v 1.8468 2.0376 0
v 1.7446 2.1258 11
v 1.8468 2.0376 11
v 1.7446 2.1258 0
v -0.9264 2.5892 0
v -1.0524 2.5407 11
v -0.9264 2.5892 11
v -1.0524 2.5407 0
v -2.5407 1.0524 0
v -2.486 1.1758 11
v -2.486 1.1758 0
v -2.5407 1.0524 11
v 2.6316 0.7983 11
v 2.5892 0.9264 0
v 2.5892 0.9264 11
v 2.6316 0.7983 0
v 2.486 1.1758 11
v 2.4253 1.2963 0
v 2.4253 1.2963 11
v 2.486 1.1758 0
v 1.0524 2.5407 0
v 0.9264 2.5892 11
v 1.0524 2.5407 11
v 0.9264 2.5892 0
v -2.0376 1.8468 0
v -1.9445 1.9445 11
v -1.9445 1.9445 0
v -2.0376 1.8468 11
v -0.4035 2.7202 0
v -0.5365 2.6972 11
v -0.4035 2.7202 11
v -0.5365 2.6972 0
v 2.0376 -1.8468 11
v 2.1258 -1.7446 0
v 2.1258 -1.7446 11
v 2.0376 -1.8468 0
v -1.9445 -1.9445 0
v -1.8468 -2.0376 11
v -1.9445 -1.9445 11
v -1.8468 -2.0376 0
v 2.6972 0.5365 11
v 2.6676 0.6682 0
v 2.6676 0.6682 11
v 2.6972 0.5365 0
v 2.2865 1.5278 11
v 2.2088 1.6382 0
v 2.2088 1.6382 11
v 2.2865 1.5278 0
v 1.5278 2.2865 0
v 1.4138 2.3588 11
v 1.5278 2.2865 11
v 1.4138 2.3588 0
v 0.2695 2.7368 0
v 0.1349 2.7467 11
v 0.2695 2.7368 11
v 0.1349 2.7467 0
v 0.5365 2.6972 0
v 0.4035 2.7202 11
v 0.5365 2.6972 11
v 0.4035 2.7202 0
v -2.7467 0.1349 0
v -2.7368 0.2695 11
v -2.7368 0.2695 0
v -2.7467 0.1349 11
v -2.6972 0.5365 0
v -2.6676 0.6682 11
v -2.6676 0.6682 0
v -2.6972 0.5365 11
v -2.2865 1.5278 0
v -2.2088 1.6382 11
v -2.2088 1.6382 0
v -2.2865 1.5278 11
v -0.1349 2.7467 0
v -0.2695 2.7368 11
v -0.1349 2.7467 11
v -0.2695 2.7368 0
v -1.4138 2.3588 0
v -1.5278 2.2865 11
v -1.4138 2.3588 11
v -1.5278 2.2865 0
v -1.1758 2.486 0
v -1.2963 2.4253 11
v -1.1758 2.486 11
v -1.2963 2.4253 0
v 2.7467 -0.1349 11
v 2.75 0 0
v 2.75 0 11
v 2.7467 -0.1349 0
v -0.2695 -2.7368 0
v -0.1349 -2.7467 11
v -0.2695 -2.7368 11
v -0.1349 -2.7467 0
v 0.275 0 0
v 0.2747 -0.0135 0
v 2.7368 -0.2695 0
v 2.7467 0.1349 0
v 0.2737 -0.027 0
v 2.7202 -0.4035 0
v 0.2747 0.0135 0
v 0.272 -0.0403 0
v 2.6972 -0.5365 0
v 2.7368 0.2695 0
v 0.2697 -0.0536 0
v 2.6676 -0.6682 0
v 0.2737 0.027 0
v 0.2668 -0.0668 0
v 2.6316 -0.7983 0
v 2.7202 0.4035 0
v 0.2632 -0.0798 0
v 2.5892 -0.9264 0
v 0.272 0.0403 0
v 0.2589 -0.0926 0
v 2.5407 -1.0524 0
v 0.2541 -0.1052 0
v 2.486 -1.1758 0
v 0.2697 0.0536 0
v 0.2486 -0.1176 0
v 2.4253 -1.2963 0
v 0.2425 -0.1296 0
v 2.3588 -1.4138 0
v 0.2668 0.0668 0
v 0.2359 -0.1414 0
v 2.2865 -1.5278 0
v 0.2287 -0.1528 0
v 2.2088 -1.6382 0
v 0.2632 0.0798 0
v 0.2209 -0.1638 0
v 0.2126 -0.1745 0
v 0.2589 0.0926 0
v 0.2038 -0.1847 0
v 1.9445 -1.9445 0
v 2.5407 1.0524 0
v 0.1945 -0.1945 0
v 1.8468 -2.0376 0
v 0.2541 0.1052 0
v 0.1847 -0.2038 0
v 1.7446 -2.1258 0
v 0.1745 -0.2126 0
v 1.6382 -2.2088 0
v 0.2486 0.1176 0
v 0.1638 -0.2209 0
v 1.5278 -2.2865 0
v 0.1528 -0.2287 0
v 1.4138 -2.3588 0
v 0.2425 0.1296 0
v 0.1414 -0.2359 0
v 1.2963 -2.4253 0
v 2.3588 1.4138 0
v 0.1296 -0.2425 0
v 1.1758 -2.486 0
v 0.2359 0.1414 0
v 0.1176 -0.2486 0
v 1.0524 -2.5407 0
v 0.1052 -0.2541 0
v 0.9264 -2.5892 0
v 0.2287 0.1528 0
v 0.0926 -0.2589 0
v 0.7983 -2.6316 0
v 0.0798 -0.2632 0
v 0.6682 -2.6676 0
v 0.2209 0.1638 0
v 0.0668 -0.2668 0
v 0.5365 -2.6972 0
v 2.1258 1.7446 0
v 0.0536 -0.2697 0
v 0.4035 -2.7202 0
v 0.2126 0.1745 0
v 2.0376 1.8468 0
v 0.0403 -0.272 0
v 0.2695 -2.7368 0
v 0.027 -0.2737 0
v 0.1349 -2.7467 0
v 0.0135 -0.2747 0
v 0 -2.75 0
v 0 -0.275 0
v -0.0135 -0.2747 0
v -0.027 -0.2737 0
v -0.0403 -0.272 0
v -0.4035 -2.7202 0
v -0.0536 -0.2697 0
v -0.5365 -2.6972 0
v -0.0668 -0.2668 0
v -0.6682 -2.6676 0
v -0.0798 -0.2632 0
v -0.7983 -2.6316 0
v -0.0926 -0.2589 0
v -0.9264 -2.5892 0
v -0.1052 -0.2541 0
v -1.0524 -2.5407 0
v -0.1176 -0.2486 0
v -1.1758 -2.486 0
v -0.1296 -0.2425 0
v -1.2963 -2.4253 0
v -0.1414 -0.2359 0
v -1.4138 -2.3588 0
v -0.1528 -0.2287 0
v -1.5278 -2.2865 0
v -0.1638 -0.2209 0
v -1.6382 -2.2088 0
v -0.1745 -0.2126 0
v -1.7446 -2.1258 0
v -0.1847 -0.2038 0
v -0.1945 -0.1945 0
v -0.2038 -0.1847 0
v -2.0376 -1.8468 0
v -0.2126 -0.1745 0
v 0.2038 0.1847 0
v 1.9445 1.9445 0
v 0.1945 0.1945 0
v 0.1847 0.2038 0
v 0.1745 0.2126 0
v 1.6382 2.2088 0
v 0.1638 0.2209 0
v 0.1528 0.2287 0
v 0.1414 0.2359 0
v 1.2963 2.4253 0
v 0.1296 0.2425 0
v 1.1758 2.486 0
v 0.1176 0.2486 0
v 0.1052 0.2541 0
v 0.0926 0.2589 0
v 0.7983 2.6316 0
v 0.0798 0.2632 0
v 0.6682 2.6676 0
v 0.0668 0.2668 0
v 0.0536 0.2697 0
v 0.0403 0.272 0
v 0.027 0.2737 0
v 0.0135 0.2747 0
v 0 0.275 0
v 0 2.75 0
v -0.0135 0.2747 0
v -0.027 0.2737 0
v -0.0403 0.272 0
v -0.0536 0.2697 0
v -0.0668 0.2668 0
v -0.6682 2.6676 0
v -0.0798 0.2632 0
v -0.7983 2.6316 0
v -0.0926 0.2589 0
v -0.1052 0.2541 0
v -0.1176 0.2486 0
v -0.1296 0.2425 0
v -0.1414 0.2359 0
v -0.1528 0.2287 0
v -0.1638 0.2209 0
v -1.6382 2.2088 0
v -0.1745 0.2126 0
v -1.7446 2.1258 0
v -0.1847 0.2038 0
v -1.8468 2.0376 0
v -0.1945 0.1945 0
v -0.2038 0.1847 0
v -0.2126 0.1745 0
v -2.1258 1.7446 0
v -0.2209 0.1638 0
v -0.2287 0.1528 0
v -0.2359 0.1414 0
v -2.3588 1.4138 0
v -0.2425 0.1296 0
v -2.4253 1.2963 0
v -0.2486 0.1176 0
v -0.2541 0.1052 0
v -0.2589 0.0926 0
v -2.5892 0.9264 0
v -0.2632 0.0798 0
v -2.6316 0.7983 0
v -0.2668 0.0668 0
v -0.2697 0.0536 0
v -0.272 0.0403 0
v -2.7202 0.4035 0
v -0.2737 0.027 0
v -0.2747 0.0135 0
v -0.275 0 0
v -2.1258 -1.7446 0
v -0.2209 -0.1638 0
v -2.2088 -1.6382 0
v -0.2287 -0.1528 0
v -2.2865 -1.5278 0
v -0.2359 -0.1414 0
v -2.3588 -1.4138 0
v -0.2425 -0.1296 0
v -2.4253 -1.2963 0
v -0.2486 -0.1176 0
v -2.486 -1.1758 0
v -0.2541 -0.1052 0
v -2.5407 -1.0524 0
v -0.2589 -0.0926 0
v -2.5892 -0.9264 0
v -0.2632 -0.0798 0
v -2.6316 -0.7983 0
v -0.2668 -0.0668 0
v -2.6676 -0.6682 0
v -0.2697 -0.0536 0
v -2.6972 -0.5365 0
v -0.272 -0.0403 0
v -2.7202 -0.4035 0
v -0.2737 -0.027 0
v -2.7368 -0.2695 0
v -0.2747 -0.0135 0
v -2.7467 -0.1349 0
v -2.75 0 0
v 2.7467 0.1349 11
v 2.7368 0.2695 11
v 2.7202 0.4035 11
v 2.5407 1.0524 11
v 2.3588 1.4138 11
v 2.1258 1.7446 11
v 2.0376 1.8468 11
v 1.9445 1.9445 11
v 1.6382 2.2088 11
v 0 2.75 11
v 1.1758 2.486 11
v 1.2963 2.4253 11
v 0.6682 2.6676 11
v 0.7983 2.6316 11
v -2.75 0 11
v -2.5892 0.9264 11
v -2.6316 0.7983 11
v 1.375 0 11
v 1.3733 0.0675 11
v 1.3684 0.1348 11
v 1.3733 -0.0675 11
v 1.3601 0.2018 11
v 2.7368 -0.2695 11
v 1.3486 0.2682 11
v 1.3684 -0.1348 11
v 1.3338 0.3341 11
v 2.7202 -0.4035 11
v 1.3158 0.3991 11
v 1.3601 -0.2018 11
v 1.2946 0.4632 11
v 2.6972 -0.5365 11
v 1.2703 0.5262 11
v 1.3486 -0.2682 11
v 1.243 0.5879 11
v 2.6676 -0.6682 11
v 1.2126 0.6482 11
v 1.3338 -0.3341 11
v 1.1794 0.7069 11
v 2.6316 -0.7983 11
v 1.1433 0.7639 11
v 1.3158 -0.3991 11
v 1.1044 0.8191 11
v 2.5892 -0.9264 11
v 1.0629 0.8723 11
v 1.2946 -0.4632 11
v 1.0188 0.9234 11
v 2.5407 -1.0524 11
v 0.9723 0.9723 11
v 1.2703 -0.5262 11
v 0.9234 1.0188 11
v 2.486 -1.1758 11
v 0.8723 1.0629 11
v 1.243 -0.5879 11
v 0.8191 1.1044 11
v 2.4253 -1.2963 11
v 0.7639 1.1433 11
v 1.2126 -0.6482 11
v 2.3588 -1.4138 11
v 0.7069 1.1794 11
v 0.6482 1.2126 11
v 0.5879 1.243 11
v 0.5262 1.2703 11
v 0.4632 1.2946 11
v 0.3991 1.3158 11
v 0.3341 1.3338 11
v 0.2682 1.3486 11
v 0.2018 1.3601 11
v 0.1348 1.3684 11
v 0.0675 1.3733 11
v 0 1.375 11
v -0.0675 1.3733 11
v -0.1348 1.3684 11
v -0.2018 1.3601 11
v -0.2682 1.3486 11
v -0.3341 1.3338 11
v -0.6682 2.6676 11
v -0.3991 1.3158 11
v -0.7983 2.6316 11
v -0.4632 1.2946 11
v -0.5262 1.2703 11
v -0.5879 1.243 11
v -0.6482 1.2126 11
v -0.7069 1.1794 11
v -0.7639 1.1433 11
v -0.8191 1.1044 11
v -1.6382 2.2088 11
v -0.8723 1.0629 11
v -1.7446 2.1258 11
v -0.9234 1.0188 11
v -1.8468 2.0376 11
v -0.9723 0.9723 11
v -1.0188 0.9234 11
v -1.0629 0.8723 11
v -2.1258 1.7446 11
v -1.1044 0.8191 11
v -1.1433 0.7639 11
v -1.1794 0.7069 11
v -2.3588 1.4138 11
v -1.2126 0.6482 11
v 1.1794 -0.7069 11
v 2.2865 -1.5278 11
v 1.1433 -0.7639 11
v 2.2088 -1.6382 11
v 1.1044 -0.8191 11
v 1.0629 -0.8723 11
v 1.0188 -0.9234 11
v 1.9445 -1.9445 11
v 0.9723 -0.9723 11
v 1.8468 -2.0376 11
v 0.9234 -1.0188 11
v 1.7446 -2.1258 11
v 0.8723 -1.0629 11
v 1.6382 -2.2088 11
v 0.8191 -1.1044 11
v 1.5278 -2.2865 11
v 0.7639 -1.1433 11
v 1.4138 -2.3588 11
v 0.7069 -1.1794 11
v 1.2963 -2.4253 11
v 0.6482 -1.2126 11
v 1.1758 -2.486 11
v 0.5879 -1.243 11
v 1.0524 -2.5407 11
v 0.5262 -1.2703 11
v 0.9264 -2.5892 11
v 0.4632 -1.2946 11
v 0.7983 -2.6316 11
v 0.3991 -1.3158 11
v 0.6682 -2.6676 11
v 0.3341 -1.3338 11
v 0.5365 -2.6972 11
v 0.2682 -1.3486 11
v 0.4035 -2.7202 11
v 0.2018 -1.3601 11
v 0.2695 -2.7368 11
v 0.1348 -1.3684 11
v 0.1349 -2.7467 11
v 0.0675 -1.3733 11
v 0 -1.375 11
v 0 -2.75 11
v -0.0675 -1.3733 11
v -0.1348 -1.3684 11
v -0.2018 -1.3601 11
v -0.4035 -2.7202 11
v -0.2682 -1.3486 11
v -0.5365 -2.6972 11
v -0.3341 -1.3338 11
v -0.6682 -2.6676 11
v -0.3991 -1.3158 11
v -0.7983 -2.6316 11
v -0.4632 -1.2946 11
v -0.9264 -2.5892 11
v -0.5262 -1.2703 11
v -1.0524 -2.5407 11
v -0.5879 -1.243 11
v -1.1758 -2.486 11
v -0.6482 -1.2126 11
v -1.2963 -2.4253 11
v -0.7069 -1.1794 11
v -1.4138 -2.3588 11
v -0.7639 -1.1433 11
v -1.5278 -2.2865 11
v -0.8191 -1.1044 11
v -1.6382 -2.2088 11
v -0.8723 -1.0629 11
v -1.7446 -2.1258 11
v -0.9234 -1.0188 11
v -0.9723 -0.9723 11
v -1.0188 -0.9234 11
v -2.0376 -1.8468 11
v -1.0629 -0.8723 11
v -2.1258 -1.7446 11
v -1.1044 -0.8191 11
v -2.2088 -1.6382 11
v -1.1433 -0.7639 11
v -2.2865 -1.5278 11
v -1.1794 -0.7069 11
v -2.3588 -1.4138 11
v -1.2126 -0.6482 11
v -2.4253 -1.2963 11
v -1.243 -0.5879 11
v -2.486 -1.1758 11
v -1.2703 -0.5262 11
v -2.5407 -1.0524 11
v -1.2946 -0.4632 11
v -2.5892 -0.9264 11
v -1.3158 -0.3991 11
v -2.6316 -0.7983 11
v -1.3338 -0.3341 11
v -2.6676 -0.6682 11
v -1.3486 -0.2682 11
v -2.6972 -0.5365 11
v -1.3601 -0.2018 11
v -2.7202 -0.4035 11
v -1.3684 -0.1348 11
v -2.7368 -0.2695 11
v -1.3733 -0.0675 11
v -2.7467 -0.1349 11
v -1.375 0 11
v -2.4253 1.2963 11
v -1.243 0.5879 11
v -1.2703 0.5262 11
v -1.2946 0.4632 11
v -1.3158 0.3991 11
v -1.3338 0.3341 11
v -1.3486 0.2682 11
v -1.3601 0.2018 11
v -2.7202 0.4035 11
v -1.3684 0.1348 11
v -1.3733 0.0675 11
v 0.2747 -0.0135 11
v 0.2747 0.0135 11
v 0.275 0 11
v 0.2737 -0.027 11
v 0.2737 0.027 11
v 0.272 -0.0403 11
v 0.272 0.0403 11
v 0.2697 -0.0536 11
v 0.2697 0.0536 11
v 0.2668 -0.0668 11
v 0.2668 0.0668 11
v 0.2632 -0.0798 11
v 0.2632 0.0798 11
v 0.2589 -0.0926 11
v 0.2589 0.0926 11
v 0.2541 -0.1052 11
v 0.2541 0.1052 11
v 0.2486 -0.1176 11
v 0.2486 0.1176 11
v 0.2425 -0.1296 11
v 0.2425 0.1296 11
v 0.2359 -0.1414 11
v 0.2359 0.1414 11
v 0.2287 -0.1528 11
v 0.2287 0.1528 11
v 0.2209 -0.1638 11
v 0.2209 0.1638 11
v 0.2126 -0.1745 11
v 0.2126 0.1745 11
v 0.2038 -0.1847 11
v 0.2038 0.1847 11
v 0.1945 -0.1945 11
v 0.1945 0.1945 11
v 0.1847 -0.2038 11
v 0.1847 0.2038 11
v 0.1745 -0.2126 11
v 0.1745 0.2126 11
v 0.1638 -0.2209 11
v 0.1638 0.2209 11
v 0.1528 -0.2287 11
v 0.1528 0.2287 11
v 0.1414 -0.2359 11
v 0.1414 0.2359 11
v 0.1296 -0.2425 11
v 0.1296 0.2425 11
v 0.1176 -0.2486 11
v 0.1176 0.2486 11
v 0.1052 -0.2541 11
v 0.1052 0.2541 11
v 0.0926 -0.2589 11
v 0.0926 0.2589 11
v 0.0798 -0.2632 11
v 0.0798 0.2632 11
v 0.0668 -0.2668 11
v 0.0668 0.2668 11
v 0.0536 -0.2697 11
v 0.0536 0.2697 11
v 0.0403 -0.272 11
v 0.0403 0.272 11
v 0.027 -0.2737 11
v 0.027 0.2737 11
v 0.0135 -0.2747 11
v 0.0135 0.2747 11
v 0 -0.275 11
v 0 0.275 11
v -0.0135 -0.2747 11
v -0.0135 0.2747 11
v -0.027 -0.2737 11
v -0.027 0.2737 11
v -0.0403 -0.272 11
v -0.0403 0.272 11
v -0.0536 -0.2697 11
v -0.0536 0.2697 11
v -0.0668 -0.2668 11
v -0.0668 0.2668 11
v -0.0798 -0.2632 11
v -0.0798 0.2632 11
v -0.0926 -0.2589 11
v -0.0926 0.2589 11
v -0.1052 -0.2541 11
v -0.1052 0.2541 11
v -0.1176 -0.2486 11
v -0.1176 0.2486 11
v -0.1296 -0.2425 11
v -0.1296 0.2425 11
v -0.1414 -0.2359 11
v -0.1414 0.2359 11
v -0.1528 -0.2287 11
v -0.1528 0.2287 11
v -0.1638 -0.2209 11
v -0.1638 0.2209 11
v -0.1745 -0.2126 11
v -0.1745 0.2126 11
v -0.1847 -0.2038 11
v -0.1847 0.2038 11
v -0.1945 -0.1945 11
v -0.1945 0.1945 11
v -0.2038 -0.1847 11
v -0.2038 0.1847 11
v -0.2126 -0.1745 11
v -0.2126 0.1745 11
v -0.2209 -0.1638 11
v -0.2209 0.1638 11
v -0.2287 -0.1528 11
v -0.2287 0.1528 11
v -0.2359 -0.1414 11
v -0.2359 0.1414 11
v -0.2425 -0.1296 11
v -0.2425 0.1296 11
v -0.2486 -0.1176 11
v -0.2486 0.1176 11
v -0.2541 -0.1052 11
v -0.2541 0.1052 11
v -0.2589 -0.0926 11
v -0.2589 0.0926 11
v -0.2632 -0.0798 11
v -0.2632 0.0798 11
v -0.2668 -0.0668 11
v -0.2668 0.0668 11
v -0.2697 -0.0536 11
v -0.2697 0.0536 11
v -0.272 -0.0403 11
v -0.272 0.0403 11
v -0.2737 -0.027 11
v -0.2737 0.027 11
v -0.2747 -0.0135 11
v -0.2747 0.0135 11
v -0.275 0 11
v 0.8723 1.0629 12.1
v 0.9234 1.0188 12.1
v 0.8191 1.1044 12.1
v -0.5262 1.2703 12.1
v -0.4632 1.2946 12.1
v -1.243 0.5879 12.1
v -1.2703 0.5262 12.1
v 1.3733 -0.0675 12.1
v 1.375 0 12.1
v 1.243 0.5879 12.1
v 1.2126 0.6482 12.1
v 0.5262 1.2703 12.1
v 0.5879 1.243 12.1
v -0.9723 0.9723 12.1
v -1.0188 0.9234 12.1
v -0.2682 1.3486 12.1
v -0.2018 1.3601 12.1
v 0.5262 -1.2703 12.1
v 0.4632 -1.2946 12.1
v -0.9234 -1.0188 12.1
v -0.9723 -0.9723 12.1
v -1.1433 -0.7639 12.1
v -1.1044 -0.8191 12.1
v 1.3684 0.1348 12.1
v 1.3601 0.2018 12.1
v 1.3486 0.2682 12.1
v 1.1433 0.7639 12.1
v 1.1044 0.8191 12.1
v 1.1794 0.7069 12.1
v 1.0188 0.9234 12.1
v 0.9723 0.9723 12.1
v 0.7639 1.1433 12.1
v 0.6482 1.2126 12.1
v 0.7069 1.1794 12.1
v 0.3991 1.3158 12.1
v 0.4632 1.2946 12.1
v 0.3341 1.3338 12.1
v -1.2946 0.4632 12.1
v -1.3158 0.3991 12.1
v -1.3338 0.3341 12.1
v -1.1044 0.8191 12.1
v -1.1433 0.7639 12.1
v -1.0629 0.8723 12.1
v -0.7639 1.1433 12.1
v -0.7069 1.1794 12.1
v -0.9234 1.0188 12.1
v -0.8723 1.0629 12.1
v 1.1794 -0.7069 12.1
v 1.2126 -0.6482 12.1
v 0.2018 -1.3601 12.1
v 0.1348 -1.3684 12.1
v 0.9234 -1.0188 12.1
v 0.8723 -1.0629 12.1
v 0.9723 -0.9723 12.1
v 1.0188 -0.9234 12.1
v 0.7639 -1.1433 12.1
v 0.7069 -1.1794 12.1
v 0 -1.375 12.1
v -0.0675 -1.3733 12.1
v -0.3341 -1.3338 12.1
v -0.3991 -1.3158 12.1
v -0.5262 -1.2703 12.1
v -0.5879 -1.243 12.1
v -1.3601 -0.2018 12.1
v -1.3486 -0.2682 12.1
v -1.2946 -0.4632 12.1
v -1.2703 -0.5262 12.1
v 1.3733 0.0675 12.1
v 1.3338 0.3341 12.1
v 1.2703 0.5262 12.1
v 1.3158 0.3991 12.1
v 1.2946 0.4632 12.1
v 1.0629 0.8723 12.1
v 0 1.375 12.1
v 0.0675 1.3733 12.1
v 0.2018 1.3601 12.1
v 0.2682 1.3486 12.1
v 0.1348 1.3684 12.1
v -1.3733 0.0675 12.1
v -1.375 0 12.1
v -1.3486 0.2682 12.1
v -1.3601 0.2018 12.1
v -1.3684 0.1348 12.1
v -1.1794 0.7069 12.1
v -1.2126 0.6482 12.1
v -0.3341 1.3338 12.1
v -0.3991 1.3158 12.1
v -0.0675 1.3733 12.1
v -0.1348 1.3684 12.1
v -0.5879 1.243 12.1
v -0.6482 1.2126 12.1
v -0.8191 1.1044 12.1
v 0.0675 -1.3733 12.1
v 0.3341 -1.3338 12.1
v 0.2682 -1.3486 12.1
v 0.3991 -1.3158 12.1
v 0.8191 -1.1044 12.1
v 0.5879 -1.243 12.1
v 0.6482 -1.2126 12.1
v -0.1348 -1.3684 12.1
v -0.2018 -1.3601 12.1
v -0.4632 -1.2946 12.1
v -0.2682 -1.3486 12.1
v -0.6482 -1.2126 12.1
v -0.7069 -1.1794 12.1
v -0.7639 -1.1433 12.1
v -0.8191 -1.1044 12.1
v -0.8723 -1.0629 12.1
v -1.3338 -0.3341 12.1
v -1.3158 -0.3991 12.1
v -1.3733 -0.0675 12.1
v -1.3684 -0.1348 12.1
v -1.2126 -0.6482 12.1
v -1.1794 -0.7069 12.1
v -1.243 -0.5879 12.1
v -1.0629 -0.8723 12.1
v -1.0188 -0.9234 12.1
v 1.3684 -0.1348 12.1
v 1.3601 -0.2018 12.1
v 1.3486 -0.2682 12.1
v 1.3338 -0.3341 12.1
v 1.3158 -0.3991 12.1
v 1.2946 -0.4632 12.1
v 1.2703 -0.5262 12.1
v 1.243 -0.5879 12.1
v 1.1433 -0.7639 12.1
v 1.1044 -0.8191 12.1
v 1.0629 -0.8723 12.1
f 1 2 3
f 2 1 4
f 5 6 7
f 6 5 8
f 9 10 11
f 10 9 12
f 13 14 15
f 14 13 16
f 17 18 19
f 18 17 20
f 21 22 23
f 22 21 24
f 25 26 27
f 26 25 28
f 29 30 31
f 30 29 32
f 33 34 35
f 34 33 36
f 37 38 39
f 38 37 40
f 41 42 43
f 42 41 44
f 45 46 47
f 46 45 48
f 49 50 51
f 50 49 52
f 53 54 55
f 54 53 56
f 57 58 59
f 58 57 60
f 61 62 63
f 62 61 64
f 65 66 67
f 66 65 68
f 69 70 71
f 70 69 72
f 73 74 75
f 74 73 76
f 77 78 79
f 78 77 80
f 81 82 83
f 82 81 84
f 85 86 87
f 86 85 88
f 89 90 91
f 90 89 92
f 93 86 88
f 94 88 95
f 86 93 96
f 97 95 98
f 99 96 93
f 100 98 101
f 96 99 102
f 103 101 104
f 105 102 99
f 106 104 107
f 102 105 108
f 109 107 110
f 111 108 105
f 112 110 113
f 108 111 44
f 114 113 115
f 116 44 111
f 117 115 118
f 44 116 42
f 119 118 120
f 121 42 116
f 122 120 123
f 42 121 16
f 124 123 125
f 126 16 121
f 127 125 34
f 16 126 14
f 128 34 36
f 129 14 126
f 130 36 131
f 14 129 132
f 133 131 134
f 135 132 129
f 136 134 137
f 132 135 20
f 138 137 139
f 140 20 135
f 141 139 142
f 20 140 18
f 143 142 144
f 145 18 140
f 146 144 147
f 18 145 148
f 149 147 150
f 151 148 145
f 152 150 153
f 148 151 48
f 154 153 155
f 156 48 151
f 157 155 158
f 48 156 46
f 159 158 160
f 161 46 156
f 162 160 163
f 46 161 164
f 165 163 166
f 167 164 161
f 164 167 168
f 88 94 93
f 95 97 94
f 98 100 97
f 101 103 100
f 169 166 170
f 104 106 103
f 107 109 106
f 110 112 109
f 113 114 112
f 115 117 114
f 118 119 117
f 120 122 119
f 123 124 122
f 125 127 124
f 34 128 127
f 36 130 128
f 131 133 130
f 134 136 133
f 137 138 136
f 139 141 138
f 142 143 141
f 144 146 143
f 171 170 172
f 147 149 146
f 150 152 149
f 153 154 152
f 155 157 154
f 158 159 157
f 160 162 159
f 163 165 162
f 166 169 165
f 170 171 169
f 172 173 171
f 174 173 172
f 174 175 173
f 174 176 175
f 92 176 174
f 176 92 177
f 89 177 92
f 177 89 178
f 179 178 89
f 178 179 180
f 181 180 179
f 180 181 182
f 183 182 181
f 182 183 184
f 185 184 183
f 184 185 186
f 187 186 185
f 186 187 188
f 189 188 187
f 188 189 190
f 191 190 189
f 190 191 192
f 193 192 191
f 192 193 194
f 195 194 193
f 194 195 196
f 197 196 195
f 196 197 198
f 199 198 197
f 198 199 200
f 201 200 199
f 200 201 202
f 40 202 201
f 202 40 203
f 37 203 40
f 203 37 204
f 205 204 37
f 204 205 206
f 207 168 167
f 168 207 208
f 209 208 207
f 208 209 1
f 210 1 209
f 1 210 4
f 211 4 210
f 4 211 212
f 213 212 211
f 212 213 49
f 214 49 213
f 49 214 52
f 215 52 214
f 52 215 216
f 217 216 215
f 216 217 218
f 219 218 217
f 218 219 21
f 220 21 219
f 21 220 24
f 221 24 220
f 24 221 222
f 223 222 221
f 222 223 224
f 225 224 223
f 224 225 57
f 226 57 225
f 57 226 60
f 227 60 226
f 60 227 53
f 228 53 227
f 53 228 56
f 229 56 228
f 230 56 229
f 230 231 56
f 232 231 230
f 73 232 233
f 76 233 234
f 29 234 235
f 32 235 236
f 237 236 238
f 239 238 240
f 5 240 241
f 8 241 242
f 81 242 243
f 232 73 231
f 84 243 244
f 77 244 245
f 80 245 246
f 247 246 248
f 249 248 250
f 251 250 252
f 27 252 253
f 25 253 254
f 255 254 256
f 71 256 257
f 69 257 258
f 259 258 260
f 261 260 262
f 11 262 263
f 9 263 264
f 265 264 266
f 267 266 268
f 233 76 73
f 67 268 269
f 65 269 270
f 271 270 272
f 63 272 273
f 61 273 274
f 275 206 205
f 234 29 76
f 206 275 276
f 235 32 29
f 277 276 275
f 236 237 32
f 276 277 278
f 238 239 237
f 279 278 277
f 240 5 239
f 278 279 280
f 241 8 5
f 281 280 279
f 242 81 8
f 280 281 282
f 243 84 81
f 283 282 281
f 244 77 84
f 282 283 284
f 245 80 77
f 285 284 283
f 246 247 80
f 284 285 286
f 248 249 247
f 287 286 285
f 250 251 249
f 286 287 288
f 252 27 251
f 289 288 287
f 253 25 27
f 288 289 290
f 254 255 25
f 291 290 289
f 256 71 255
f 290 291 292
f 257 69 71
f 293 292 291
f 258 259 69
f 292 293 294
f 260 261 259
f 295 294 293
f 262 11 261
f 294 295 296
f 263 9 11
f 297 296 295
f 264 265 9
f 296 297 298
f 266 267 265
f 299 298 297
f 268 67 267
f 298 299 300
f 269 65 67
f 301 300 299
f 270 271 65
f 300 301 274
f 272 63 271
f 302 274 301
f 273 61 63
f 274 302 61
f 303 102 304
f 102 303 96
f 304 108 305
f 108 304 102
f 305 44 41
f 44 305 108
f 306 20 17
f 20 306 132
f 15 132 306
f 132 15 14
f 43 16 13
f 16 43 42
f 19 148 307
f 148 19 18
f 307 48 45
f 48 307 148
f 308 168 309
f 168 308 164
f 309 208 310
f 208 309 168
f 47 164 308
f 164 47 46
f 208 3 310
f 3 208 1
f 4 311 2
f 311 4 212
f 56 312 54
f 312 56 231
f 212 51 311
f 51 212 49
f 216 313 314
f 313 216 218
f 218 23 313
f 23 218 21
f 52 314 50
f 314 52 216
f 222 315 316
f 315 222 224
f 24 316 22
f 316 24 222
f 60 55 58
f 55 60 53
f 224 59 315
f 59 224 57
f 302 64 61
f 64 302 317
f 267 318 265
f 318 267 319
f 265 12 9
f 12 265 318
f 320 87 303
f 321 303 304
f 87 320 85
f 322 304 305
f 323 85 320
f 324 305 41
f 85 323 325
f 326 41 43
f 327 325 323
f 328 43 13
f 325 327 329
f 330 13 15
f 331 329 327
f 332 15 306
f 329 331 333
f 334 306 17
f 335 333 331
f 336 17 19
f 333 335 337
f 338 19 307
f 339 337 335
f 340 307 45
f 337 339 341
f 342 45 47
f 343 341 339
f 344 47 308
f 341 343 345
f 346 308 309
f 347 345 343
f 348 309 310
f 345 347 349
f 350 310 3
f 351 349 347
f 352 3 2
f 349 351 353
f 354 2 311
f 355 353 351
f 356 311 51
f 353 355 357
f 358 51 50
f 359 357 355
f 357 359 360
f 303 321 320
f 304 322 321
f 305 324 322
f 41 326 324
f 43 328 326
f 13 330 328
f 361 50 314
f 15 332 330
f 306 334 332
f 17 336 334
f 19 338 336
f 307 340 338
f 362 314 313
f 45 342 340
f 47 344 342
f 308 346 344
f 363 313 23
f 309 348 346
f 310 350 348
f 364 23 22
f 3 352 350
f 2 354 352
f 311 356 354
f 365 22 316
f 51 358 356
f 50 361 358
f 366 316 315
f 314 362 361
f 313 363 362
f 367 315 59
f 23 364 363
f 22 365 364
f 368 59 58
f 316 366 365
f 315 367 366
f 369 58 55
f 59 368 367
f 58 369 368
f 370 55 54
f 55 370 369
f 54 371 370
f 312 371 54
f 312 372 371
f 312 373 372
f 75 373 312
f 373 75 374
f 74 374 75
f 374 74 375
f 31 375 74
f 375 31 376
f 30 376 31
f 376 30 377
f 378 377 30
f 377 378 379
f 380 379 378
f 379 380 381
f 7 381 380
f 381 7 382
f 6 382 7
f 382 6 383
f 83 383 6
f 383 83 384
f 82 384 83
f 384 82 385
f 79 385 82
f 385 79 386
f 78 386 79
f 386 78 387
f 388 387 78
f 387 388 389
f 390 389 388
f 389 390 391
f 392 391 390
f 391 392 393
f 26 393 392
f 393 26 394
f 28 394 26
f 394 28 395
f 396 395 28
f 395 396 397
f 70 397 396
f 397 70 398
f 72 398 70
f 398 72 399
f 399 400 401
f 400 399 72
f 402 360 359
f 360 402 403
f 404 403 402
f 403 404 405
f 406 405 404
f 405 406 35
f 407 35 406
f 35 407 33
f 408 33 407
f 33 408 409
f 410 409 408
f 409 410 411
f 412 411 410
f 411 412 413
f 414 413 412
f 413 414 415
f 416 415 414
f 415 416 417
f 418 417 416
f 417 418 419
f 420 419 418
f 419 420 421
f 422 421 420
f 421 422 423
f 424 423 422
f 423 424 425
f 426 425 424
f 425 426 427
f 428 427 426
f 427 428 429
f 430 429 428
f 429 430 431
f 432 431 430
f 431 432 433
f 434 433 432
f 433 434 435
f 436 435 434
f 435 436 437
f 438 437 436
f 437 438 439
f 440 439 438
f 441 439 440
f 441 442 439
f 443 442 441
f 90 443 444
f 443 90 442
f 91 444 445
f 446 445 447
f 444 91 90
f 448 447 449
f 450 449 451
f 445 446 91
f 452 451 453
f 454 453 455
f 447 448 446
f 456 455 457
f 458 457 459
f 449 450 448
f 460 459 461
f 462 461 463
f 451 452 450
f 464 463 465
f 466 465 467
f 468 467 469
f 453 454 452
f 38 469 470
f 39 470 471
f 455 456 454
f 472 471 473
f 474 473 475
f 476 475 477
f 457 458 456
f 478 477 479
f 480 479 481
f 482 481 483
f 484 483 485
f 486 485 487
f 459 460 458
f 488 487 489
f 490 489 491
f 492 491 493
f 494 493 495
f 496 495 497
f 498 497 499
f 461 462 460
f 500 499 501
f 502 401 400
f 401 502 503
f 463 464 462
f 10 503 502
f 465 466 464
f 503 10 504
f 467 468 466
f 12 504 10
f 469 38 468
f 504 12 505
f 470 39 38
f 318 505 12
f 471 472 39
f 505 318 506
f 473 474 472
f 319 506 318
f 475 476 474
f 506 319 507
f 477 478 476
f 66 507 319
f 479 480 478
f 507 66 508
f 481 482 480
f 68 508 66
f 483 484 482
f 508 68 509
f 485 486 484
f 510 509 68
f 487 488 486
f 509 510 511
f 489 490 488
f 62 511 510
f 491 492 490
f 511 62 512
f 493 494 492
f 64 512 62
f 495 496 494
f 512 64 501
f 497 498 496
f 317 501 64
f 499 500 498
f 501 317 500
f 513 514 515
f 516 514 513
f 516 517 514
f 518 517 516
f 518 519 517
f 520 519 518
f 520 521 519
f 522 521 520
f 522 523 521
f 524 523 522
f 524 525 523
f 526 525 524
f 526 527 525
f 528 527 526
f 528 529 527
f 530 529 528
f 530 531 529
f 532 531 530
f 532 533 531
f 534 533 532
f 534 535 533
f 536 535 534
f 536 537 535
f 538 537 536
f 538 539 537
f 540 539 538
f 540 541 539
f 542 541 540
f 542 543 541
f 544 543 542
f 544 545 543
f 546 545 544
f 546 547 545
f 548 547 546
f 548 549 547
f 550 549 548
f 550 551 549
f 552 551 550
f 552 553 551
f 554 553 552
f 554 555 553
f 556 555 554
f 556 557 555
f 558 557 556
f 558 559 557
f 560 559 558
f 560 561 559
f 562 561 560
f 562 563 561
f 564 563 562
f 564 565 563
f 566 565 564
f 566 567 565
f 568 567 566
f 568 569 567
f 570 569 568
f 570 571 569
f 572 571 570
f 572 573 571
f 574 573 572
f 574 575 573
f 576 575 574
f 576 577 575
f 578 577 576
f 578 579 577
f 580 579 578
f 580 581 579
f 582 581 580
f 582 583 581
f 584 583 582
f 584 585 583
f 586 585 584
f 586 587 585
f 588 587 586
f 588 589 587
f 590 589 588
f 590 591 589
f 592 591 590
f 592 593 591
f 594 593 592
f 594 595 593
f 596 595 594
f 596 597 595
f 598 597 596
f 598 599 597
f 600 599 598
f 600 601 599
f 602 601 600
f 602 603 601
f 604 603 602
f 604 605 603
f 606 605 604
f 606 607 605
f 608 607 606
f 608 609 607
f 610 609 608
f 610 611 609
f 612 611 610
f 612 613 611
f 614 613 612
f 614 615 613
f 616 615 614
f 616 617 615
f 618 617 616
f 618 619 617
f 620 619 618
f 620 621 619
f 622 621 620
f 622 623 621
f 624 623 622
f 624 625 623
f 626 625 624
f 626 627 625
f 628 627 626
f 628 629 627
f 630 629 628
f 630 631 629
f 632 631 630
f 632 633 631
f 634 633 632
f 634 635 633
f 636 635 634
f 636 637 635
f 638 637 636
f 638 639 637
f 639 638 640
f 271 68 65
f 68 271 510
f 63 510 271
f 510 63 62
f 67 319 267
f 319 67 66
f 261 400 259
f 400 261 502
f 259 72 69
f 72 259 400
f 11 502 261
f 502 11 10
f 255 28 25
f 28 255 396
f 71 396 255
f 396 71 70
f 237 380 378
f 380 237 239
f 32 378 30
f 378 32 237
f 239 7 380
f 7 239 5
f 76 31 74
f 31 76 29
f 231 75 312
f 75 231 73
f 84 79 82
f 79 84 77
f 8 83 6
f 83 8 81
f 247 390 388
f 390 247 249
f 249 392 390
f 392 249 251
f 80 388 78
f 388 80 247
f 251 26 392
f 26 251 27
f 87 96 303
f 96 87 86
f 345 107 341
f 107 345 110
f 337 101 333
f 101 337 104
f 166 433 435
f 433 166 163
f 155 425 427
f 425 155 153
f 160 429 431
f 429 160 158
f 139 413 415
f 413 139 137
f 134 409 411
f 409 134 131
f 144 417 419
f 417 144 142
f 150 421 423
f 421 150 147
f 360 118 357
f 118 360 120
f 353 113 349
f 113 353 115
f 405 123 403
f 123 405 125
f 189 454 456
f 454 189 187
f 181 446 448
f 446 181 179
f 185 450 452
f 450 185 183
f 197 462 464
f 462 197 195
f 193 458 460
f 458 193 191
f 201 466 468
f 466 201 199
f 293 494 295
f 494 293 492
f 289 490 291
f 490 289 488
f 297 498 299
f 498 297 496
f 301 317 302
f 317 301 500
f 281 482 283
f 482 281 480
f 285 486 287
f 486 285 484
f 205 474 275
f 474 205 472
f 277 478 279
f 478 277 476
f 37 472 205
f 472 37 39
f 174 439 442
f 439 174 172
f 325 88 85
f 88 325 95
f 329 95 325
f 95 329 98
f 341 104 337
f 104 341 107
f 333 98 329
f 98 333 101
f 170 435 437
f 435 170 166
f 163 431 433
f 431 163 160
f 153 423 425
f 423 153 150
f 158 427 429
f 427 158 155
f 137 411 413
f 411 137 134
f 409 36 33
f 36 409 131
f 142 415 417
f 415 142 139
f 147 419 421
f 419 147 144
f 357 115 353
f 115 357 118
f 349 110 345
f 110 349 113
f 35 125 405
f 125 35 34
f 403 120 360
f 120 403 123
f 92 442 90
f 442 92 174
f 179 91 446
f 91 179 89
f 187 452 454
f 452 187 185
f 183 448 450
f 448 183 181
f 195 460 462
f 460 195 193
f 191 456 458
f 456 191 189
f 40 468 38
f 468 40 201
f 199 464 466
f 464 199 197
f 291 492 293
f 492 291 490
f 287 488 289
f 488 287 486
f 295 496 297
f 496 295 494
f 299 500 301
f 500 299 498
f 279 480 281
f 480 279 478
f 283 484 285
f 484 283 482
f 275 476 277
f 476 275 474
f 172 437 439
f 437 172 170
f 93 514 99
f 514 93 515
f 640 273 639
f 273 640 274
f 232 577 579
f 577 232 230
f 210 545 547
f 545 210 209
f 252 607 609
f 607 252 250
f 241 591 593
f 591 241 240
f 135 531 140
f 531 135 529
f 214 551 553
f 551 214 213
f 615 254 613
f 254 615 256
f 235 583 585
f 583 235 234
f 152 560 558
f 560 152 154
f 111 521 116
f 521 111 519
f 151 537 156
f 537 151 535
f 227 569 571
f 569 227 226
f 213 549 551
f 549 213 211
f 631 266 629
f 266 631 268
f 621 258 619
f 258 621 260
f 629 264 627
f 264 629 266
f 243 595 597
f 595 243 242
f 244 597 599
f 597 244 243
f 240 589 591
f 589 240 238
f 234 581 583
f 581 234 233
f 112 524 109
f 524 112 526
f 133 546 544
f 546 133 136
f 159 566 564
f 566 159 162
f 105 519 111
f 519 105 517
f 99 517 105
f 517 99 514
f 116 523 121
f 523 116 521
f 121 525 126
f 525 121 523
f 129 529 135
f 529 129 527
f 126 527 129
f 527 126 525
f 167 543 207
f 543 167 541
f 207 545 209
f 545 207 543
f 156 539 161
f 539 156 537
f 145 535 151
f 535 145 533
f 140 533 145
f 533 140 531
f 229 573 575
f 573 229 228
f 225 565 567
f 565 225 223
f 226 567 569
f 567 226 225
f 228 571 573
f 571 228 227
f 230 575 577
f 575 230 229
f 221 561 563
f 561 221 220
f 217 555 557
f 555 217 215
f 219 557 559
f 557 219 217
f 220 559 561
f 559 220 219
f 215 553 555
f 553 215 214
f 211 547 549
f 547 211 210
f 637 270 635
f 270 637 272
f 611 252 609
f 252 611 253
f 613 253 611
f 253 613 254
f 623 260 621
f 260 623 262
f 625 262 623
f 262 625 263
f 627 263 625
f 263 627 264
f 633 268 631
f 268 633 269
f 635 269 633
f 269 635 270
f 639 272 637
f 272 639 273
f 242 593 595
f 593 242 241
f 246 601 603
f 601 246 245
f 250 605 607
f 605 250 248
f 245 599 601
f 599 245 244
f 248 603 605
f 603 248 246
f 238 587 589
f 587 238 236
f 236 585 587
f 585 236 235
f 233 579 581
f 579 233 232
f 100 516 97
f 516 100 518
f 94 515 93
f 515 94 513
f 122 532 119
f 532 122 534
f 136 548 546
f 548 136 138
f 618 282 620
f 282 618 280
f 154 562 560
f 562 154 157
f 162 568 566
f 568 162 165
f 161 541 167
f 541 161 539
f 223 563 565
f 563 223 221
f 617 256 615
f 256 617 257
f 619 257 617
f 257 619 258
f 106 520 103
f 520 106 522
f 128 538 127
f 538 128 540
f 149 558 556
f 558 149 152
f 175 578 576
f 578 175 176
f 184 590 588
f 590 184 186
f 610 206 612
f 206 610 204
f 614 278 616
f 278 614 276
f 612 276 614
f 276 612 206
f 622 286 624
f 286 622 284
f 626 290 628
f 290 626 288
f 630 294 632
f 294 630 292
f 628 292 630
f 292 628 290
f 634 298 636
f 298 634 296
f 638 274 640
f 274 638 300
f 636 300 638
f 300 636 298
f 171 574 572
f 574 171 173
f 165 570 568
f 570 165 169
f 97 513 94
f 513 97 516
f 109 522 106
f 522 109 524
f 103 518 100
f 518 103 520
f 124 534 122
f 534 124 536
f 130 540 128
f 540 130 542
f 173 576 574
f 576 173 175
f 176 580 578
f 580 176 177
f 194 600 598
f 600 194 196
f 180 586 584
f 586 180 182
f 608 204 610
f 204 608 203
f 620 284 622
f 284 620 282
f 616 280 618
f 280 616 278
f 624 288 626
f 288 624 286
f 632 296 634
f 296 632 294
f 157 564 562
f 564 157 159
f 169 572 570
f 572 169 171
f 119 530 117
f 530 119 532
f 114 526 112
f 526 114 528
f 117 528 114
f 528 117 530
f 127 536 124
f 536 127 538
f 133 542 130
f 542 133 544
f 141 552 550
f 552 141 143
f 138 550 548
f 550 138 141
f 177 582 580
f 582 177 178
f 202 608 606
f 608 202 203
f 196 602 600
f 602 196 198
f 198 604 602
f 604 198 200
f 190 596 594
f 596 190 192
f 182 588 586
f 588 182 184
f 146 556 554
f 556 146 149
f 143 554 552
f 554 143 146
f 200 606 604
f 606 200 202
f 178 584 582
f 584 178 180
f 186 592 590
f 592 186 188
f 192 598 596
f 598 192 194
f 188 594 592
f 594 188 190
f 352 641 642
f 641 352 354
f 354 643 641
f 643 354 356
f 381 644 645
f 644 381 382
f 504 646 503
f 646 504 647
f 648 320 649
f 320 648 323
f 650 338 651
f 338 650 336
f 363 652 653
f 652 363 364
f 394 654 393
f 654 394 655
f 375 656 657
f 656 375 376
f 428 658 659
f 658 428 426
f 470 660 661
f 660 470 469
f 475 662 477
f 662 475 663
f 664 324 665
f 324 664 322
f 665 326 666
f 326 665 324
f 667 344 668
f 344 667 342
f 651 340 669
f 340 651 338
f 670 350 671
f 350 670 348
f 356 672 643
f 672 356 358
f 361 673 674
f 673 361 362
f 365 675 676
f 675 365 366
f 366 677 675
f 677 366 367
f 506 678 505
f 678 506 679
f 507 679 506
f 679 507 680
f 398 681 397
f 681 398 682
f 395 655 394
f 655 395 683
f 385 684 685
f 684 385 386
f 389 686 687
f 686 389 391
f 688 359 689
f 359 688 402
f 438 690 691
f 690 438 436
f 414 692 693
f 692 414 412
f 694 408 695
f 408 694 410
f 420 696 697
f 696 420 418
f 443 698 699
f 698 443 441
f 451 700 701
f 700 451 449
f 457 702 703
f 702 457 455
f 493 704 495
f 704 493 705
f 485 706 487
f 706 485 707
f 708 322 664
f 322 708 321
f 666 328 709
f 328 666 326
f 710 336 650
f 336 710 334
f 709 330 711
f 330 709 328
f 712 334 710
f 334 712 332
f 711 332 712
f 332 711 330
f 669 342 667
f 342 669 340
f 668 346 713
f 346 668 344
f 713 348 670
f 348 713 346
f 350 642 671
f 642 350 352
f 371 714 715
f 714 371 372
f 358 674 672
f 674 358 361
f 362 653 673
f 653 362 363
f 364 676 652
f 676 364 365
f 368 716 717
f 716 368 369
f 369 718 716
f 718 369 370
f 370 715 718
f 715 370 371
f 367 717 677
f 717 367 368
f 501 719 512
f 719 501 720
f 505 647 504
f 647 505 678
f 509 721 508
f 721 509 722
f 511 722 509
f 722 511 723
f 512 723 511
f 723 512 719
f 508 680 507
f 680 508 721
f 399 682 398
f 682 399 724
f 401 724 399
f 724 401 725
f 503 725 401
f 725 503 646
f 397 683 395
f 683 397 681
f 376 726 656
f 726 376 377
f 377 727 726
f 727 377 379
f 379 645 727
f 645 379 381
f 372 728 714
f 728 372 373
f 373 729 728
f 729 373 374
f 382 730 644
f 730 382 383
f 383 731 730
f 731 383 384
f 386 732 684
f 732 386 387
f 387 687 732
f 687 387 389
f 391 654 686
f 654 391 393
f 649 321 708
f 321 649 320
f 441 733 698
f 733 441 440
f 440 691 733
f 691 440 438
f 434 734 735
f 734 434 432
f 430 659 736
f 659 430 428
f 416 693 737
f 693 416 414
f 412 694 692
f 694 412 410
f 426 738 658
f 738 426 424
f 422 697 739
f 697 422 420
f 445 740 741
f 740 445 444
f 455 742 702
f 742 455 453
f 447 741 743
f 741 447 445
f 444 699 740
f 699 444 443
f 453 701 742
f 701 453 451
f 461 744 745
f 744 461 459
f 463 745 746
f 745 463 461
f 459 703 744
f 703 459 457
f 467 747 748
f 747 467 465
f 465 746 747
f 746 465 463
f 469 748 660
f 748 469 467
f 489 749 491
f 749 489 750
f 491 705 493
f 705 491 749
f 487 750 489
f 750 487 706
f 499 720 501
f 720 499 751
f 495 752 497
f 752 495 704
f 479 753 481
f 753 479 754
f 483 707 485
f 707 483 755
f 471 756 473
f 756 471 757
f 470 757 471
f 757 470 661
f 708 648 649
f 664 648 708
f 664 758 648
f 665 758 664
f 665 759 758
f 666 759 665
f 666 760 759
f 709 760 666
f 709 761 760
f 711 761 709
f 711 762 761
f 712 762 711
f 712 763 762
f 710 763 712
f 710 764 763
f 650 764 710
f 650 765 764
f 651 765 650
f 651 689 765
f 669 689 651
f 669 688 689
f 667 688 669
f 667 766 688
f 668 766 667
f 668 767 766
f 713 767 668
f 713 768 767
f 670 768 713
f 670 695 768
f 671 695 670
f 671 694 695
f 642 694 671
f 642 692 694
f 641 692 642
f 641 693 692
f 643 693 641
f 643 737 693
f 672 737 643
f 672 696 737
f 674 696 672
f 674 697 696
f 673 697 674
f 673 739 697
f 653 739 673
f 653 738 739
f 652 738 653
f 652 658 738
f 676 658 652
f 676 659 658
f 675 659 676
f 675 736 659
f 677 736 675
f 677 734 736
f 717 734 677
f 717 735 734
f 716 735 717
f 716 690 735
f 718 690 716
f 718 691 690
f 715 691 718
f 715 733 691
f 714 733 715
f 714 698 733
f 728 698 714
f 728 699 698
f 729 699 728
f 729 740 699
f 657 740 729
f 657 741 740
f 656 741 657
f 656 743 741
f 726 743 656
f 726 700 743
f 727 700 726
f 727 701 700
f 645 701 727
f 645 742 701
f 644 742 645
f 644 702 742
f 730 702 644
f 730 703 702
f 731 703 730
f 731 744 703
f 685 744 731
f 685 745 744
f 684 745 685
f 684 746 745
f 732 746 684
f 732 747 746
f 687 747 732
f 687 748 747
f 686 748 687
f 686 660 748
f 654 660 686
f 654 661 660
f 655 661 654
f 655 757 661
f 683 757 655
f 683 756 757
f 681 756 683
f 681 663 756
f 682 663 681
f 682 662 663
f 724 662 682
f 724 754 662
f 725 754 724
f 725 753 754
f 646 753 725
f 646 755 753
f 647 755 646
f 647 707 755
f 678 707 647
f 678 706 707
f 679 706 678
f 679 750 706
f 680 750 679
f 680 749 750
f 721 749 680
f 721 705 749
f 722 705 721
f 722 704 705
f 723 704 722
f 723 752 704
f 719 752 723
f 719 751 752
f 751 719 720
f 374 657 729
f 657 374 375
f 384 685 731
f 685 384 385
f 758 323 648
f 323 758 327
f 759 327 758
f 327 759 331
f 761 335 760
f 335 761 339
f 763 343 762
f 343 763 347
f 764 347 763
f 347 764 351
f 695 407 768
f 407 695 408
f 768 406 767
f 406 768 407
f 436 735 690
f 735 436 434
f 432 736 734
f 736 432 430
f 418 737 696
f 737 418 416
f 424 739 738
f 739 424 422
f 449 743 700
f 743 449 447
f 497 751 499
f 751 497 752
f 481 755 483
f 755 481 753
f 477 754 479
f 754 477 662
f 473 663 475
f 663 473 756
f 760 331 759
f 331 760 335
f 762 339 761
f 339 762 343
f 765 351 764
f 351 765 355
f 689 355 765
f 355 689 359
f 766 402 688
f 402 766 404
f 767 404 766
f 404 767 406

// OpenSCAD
// Generated by SolidPython 1.1.3 on 2023-04-08 02:27:49
$fn =128;


union() {
	difference() {
		cylinder(h = 11, r = 2.7500000000);
		cylinder(h = 11, r = 0.2750000000);
	}
	translate(v = [0, 0, 11]) {
		cylinder(h = 1.1000000000, r = 1.3750000000);
	}
}
